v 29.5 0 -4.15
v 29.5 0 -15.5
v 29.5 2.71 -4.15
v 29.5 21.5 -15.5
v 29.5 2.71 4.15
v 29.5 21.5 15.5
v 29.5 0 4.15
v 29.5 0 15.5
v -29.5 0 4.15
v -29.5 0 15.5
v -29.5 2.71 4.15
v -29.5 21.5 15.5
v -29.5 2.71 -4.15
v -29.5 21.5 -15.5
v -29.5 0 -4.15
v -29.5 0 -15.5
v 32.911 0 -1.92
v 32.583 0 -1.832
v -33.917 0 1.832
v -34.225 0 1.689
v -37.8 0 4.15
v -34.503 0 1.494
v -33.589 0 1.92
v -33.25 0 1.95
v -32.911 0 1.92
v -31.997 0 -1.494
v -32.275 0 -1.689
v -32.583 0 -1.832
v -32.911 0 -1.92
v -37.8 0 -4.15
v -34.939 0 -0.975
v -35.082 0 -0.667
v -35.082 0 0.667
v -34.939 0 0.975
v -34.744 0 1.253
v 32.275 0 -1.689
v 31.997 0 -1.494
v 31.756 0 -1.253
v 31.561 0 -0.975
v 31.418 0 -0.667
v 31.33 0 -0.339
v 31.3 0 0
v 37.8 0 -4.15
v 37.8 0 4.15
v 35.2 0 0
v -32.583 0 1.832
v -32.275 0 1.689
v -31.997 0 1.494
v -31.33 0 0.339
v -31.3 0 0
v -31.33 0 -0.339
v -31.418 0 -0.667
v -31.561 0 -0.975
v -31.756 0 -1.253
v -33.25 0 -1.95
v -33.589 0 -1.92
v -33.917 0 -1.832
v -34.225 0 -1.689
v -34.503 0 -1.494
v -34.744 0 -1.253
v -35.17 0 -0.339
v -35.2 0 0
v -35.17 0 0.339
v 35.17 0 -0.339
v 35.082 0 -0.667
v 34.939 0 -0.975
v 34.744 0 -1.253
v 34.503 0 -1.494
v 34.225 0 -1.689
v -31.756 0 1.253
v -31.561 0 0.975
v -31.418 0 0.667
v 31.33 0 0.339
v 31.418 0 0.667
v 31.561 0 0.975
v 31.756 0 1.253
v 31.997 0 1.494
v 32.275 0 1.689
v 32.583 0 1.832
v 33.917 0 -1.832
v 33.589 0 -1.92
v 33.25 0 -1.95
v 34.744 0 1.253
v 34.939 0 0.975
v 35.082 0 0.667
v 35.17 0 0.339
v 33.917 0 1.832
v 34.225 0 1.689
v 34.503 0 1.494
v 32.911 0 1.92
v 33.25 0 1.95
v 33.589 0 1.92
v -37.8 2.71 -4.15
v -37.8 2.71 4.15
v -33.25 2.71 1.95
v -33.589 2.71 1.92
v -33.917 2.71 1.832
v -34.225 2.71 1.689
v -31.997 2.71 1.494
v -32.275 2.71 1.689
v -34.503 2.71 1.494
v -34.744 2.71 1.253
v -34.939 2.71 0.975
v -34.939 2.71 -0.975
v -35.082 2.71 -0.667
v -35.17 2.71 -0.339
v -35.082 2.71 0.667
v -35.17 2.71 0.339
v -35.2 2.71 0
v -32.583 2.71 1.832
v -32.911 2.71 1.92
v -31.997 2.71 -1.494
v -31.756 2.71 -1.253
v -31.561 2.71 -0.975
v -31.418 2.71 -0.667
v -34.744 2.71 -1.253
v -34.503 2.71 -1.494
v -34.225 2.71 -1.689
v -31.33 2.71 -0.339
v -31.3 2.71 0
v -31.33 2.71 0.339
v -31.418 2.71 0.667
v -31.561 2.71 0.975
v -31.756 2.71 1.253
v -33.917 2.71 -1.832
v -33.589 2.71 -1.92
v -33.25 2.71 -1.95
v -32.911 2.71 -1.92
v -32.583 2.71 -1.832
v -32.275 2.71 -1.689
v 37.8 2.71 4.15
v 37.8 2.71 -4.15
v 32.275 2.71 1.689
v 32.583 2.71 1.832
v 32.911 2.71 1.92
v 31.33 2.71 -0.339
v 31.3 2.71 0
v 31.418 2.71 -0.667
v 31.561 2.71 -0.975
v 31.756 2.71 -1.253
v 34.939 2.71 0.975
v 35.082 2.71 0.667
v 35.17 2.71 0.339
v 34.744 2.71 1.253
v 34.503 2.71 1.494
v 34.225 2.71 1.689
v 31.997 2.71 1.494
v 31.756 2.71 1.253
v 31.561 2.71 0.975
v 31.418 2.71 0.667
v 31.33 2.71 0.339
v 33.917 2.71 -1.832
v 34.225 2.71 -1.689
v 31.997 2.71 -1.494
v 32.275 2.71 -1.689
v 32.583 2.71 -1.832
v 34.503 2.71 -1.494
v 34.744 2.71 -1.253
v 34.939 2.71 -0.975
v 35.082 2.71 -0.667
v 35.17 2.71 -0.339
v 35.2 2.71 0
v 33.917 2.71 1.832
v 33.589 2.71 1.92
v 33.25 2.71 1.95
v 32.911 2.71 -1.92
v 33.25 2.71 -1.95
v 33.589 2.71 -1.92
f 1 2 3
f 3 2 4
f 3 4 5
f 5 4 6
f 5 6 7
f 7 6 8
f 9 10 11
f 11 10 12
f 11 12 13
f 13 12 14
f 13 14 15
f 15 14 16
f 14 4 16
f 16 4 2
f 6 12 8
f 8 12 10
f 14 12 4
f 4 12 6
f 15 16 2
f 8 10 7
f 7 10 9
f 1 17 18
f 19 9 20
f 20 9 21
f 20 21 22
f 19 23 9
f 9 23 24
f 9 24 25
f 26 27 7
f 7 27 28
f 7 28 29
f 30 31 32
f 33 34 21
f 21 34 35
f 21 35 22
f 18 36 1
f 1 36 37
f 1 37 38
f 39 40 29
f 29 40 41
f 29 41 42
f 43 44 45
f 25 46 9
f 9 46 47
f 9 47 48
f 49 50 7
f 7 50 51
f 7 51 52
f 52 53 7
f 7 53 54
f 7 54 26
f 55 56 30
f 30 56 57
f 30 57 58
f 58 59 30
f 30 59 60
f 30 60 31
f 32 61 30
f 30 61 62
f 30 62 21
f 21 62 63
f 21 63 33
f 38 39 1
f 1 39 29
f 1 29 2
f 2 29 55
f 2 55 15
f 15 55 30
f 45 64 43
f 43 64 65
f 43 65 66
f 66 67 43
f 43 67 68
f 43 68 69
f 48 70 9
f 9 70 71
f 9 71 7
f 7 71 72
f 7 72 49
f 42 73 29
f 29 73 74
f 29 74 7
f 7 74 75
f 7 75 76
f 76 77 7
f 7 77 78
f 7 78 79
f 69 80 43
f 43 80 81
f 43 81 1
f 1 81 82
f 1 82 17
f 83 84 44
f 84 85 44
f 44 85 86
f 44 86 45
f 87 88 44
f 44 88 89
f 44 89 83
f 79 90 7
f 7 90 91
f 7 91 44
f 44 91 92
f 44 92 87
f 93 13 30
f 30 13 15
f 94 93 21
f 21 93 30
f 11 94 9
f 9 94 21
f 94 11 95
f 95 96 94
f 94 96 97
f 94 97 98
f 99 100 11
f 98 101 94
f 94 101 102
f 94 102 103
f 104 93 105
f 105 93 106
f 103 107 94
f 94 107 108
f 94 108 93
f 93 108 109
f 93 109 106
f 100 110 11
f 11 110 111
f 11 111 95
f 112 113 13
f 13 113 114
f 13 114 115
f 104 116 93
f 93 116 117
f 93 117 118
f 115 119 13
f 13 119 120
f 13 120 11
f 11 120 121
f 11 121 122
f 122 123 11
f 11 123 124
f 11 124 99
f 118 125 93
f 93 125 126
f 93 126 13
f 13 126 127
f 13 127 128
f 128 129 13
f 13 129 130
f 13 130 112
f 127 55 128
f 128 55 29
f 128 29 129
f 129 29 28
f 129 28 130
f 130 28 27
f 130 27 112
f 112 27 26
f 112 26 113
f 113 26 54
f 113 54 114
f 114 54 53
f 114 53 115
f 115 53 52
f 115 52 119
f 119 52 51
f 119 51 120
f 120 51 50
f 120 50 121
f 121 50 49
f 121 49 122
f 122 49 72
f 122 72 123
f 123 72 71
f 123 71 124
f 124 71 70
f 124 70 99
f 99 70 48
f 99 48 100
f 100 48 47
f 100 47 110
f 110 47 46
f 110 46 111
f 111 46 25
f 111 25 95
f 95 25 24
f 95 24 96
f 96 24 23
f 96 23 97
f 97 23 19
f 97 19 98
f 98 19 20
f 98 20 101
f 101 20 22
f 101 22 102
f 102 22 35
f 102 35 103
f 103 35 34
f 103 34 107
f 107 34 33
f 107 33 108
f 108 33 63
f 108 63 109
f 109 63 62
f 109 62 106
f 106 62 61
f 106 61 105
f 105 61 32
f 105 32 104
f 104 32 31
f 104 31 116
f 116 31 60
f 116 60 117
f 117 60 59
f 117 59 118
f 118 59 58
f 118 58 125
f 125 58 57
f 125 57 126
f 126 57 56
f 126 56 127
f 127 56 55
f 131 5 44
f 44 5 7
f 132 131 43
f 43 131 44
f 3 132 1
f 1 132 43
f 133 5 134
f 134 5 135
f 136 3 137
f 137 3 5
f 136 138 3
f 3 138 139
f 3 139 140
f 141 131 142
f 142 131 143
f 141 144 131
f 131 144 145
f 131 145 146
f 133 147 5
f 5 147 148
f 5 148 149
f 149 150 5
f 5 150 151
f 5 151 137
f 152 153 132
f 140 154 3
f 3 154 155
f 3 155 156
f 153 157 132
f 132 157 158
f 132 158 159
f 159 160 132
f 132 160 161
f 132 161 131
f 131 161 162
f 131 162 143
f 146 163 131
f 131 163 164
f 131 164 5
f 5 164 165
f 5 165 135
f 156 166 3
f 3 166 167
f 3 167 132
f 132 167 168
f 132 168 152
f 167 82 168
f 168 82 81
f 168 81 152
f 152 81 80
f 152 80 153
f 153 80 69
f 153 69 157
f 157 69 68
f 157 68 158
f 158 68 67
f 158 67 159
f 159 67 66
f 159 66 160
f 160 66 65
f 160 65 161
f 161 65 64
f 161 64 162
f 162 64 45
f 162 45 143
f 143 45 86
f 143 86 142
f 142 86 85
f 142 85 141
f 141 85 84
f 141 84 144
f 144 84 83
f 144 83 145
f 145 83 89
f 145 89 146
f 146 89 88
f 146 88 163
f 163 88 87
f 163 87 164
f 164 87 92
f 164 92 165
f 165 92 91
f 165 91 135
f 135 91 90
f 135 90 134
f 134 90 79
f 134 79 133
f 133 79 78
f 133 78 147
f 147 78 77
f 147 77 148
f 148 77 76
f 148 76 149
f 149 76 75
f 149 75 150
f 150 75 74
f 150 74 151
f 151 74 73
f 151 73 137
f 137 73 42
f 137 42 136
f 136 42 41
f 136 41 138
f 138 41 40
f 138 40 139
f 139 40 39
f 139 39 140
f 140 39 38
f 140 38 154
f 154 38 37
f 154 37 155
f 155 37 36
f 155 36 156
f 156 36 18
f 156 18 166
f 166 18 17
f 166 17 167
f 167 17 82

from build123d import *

# Parameters (mm, degrees)
SKETCH2_W           = 59
SKETCH2_H           = 31
BOSS_EXTRUDE1_DEPTH = 21.5
SKETCH3_W           = 8.3
SKETCH3_H           = 8.3
SKETCH3_R           = 1.95
BOSS_EXTRUDE2_DEPTH = 2.71


with BuildPart() as part:
    # Sketch2 → Boss-Extrude1 (new body)
    with BuildSketch(Plane(origin=(0, 0, 0), x_dir=(1, 0, 0), z_dir=(0, 1, 0))):
        Rectangle(SKETCH2_W, SKETCH2_H)
    extrude(amount=BOSS_EXTRUDE1_DEPTH)

    # Sketch3 → Boss-Extrude2 (add)
    # profile 1 of 2: a face of its own
    with BuildSketch(Plane.XZ):
        with Locations((-33.65, 0)):
            Rectangle(SKETCH3_W, SKETCH3_H)
        with Locations(Location((-33.25, 0, 0), (0, 0, 270))):
            Circle(SKETCH3_R, mode=Mode.SUBTRACT)
    # profile 2 of 2: a face of its own
    with BuildSketch(Plane.XZ):
        with Locations((33.65, 0)):
            Rectangle(SKETCH3_W, SKETCH3_H)
        with Locations(Location((33.25, 0, 0), (0, 0, 90))):
            Circle(SKETCH3_R, mode=Mode.SUBTRACT)
    extrude(amount=-BOSS_EXTRUDE2_DEPTH)


solid = part.part
